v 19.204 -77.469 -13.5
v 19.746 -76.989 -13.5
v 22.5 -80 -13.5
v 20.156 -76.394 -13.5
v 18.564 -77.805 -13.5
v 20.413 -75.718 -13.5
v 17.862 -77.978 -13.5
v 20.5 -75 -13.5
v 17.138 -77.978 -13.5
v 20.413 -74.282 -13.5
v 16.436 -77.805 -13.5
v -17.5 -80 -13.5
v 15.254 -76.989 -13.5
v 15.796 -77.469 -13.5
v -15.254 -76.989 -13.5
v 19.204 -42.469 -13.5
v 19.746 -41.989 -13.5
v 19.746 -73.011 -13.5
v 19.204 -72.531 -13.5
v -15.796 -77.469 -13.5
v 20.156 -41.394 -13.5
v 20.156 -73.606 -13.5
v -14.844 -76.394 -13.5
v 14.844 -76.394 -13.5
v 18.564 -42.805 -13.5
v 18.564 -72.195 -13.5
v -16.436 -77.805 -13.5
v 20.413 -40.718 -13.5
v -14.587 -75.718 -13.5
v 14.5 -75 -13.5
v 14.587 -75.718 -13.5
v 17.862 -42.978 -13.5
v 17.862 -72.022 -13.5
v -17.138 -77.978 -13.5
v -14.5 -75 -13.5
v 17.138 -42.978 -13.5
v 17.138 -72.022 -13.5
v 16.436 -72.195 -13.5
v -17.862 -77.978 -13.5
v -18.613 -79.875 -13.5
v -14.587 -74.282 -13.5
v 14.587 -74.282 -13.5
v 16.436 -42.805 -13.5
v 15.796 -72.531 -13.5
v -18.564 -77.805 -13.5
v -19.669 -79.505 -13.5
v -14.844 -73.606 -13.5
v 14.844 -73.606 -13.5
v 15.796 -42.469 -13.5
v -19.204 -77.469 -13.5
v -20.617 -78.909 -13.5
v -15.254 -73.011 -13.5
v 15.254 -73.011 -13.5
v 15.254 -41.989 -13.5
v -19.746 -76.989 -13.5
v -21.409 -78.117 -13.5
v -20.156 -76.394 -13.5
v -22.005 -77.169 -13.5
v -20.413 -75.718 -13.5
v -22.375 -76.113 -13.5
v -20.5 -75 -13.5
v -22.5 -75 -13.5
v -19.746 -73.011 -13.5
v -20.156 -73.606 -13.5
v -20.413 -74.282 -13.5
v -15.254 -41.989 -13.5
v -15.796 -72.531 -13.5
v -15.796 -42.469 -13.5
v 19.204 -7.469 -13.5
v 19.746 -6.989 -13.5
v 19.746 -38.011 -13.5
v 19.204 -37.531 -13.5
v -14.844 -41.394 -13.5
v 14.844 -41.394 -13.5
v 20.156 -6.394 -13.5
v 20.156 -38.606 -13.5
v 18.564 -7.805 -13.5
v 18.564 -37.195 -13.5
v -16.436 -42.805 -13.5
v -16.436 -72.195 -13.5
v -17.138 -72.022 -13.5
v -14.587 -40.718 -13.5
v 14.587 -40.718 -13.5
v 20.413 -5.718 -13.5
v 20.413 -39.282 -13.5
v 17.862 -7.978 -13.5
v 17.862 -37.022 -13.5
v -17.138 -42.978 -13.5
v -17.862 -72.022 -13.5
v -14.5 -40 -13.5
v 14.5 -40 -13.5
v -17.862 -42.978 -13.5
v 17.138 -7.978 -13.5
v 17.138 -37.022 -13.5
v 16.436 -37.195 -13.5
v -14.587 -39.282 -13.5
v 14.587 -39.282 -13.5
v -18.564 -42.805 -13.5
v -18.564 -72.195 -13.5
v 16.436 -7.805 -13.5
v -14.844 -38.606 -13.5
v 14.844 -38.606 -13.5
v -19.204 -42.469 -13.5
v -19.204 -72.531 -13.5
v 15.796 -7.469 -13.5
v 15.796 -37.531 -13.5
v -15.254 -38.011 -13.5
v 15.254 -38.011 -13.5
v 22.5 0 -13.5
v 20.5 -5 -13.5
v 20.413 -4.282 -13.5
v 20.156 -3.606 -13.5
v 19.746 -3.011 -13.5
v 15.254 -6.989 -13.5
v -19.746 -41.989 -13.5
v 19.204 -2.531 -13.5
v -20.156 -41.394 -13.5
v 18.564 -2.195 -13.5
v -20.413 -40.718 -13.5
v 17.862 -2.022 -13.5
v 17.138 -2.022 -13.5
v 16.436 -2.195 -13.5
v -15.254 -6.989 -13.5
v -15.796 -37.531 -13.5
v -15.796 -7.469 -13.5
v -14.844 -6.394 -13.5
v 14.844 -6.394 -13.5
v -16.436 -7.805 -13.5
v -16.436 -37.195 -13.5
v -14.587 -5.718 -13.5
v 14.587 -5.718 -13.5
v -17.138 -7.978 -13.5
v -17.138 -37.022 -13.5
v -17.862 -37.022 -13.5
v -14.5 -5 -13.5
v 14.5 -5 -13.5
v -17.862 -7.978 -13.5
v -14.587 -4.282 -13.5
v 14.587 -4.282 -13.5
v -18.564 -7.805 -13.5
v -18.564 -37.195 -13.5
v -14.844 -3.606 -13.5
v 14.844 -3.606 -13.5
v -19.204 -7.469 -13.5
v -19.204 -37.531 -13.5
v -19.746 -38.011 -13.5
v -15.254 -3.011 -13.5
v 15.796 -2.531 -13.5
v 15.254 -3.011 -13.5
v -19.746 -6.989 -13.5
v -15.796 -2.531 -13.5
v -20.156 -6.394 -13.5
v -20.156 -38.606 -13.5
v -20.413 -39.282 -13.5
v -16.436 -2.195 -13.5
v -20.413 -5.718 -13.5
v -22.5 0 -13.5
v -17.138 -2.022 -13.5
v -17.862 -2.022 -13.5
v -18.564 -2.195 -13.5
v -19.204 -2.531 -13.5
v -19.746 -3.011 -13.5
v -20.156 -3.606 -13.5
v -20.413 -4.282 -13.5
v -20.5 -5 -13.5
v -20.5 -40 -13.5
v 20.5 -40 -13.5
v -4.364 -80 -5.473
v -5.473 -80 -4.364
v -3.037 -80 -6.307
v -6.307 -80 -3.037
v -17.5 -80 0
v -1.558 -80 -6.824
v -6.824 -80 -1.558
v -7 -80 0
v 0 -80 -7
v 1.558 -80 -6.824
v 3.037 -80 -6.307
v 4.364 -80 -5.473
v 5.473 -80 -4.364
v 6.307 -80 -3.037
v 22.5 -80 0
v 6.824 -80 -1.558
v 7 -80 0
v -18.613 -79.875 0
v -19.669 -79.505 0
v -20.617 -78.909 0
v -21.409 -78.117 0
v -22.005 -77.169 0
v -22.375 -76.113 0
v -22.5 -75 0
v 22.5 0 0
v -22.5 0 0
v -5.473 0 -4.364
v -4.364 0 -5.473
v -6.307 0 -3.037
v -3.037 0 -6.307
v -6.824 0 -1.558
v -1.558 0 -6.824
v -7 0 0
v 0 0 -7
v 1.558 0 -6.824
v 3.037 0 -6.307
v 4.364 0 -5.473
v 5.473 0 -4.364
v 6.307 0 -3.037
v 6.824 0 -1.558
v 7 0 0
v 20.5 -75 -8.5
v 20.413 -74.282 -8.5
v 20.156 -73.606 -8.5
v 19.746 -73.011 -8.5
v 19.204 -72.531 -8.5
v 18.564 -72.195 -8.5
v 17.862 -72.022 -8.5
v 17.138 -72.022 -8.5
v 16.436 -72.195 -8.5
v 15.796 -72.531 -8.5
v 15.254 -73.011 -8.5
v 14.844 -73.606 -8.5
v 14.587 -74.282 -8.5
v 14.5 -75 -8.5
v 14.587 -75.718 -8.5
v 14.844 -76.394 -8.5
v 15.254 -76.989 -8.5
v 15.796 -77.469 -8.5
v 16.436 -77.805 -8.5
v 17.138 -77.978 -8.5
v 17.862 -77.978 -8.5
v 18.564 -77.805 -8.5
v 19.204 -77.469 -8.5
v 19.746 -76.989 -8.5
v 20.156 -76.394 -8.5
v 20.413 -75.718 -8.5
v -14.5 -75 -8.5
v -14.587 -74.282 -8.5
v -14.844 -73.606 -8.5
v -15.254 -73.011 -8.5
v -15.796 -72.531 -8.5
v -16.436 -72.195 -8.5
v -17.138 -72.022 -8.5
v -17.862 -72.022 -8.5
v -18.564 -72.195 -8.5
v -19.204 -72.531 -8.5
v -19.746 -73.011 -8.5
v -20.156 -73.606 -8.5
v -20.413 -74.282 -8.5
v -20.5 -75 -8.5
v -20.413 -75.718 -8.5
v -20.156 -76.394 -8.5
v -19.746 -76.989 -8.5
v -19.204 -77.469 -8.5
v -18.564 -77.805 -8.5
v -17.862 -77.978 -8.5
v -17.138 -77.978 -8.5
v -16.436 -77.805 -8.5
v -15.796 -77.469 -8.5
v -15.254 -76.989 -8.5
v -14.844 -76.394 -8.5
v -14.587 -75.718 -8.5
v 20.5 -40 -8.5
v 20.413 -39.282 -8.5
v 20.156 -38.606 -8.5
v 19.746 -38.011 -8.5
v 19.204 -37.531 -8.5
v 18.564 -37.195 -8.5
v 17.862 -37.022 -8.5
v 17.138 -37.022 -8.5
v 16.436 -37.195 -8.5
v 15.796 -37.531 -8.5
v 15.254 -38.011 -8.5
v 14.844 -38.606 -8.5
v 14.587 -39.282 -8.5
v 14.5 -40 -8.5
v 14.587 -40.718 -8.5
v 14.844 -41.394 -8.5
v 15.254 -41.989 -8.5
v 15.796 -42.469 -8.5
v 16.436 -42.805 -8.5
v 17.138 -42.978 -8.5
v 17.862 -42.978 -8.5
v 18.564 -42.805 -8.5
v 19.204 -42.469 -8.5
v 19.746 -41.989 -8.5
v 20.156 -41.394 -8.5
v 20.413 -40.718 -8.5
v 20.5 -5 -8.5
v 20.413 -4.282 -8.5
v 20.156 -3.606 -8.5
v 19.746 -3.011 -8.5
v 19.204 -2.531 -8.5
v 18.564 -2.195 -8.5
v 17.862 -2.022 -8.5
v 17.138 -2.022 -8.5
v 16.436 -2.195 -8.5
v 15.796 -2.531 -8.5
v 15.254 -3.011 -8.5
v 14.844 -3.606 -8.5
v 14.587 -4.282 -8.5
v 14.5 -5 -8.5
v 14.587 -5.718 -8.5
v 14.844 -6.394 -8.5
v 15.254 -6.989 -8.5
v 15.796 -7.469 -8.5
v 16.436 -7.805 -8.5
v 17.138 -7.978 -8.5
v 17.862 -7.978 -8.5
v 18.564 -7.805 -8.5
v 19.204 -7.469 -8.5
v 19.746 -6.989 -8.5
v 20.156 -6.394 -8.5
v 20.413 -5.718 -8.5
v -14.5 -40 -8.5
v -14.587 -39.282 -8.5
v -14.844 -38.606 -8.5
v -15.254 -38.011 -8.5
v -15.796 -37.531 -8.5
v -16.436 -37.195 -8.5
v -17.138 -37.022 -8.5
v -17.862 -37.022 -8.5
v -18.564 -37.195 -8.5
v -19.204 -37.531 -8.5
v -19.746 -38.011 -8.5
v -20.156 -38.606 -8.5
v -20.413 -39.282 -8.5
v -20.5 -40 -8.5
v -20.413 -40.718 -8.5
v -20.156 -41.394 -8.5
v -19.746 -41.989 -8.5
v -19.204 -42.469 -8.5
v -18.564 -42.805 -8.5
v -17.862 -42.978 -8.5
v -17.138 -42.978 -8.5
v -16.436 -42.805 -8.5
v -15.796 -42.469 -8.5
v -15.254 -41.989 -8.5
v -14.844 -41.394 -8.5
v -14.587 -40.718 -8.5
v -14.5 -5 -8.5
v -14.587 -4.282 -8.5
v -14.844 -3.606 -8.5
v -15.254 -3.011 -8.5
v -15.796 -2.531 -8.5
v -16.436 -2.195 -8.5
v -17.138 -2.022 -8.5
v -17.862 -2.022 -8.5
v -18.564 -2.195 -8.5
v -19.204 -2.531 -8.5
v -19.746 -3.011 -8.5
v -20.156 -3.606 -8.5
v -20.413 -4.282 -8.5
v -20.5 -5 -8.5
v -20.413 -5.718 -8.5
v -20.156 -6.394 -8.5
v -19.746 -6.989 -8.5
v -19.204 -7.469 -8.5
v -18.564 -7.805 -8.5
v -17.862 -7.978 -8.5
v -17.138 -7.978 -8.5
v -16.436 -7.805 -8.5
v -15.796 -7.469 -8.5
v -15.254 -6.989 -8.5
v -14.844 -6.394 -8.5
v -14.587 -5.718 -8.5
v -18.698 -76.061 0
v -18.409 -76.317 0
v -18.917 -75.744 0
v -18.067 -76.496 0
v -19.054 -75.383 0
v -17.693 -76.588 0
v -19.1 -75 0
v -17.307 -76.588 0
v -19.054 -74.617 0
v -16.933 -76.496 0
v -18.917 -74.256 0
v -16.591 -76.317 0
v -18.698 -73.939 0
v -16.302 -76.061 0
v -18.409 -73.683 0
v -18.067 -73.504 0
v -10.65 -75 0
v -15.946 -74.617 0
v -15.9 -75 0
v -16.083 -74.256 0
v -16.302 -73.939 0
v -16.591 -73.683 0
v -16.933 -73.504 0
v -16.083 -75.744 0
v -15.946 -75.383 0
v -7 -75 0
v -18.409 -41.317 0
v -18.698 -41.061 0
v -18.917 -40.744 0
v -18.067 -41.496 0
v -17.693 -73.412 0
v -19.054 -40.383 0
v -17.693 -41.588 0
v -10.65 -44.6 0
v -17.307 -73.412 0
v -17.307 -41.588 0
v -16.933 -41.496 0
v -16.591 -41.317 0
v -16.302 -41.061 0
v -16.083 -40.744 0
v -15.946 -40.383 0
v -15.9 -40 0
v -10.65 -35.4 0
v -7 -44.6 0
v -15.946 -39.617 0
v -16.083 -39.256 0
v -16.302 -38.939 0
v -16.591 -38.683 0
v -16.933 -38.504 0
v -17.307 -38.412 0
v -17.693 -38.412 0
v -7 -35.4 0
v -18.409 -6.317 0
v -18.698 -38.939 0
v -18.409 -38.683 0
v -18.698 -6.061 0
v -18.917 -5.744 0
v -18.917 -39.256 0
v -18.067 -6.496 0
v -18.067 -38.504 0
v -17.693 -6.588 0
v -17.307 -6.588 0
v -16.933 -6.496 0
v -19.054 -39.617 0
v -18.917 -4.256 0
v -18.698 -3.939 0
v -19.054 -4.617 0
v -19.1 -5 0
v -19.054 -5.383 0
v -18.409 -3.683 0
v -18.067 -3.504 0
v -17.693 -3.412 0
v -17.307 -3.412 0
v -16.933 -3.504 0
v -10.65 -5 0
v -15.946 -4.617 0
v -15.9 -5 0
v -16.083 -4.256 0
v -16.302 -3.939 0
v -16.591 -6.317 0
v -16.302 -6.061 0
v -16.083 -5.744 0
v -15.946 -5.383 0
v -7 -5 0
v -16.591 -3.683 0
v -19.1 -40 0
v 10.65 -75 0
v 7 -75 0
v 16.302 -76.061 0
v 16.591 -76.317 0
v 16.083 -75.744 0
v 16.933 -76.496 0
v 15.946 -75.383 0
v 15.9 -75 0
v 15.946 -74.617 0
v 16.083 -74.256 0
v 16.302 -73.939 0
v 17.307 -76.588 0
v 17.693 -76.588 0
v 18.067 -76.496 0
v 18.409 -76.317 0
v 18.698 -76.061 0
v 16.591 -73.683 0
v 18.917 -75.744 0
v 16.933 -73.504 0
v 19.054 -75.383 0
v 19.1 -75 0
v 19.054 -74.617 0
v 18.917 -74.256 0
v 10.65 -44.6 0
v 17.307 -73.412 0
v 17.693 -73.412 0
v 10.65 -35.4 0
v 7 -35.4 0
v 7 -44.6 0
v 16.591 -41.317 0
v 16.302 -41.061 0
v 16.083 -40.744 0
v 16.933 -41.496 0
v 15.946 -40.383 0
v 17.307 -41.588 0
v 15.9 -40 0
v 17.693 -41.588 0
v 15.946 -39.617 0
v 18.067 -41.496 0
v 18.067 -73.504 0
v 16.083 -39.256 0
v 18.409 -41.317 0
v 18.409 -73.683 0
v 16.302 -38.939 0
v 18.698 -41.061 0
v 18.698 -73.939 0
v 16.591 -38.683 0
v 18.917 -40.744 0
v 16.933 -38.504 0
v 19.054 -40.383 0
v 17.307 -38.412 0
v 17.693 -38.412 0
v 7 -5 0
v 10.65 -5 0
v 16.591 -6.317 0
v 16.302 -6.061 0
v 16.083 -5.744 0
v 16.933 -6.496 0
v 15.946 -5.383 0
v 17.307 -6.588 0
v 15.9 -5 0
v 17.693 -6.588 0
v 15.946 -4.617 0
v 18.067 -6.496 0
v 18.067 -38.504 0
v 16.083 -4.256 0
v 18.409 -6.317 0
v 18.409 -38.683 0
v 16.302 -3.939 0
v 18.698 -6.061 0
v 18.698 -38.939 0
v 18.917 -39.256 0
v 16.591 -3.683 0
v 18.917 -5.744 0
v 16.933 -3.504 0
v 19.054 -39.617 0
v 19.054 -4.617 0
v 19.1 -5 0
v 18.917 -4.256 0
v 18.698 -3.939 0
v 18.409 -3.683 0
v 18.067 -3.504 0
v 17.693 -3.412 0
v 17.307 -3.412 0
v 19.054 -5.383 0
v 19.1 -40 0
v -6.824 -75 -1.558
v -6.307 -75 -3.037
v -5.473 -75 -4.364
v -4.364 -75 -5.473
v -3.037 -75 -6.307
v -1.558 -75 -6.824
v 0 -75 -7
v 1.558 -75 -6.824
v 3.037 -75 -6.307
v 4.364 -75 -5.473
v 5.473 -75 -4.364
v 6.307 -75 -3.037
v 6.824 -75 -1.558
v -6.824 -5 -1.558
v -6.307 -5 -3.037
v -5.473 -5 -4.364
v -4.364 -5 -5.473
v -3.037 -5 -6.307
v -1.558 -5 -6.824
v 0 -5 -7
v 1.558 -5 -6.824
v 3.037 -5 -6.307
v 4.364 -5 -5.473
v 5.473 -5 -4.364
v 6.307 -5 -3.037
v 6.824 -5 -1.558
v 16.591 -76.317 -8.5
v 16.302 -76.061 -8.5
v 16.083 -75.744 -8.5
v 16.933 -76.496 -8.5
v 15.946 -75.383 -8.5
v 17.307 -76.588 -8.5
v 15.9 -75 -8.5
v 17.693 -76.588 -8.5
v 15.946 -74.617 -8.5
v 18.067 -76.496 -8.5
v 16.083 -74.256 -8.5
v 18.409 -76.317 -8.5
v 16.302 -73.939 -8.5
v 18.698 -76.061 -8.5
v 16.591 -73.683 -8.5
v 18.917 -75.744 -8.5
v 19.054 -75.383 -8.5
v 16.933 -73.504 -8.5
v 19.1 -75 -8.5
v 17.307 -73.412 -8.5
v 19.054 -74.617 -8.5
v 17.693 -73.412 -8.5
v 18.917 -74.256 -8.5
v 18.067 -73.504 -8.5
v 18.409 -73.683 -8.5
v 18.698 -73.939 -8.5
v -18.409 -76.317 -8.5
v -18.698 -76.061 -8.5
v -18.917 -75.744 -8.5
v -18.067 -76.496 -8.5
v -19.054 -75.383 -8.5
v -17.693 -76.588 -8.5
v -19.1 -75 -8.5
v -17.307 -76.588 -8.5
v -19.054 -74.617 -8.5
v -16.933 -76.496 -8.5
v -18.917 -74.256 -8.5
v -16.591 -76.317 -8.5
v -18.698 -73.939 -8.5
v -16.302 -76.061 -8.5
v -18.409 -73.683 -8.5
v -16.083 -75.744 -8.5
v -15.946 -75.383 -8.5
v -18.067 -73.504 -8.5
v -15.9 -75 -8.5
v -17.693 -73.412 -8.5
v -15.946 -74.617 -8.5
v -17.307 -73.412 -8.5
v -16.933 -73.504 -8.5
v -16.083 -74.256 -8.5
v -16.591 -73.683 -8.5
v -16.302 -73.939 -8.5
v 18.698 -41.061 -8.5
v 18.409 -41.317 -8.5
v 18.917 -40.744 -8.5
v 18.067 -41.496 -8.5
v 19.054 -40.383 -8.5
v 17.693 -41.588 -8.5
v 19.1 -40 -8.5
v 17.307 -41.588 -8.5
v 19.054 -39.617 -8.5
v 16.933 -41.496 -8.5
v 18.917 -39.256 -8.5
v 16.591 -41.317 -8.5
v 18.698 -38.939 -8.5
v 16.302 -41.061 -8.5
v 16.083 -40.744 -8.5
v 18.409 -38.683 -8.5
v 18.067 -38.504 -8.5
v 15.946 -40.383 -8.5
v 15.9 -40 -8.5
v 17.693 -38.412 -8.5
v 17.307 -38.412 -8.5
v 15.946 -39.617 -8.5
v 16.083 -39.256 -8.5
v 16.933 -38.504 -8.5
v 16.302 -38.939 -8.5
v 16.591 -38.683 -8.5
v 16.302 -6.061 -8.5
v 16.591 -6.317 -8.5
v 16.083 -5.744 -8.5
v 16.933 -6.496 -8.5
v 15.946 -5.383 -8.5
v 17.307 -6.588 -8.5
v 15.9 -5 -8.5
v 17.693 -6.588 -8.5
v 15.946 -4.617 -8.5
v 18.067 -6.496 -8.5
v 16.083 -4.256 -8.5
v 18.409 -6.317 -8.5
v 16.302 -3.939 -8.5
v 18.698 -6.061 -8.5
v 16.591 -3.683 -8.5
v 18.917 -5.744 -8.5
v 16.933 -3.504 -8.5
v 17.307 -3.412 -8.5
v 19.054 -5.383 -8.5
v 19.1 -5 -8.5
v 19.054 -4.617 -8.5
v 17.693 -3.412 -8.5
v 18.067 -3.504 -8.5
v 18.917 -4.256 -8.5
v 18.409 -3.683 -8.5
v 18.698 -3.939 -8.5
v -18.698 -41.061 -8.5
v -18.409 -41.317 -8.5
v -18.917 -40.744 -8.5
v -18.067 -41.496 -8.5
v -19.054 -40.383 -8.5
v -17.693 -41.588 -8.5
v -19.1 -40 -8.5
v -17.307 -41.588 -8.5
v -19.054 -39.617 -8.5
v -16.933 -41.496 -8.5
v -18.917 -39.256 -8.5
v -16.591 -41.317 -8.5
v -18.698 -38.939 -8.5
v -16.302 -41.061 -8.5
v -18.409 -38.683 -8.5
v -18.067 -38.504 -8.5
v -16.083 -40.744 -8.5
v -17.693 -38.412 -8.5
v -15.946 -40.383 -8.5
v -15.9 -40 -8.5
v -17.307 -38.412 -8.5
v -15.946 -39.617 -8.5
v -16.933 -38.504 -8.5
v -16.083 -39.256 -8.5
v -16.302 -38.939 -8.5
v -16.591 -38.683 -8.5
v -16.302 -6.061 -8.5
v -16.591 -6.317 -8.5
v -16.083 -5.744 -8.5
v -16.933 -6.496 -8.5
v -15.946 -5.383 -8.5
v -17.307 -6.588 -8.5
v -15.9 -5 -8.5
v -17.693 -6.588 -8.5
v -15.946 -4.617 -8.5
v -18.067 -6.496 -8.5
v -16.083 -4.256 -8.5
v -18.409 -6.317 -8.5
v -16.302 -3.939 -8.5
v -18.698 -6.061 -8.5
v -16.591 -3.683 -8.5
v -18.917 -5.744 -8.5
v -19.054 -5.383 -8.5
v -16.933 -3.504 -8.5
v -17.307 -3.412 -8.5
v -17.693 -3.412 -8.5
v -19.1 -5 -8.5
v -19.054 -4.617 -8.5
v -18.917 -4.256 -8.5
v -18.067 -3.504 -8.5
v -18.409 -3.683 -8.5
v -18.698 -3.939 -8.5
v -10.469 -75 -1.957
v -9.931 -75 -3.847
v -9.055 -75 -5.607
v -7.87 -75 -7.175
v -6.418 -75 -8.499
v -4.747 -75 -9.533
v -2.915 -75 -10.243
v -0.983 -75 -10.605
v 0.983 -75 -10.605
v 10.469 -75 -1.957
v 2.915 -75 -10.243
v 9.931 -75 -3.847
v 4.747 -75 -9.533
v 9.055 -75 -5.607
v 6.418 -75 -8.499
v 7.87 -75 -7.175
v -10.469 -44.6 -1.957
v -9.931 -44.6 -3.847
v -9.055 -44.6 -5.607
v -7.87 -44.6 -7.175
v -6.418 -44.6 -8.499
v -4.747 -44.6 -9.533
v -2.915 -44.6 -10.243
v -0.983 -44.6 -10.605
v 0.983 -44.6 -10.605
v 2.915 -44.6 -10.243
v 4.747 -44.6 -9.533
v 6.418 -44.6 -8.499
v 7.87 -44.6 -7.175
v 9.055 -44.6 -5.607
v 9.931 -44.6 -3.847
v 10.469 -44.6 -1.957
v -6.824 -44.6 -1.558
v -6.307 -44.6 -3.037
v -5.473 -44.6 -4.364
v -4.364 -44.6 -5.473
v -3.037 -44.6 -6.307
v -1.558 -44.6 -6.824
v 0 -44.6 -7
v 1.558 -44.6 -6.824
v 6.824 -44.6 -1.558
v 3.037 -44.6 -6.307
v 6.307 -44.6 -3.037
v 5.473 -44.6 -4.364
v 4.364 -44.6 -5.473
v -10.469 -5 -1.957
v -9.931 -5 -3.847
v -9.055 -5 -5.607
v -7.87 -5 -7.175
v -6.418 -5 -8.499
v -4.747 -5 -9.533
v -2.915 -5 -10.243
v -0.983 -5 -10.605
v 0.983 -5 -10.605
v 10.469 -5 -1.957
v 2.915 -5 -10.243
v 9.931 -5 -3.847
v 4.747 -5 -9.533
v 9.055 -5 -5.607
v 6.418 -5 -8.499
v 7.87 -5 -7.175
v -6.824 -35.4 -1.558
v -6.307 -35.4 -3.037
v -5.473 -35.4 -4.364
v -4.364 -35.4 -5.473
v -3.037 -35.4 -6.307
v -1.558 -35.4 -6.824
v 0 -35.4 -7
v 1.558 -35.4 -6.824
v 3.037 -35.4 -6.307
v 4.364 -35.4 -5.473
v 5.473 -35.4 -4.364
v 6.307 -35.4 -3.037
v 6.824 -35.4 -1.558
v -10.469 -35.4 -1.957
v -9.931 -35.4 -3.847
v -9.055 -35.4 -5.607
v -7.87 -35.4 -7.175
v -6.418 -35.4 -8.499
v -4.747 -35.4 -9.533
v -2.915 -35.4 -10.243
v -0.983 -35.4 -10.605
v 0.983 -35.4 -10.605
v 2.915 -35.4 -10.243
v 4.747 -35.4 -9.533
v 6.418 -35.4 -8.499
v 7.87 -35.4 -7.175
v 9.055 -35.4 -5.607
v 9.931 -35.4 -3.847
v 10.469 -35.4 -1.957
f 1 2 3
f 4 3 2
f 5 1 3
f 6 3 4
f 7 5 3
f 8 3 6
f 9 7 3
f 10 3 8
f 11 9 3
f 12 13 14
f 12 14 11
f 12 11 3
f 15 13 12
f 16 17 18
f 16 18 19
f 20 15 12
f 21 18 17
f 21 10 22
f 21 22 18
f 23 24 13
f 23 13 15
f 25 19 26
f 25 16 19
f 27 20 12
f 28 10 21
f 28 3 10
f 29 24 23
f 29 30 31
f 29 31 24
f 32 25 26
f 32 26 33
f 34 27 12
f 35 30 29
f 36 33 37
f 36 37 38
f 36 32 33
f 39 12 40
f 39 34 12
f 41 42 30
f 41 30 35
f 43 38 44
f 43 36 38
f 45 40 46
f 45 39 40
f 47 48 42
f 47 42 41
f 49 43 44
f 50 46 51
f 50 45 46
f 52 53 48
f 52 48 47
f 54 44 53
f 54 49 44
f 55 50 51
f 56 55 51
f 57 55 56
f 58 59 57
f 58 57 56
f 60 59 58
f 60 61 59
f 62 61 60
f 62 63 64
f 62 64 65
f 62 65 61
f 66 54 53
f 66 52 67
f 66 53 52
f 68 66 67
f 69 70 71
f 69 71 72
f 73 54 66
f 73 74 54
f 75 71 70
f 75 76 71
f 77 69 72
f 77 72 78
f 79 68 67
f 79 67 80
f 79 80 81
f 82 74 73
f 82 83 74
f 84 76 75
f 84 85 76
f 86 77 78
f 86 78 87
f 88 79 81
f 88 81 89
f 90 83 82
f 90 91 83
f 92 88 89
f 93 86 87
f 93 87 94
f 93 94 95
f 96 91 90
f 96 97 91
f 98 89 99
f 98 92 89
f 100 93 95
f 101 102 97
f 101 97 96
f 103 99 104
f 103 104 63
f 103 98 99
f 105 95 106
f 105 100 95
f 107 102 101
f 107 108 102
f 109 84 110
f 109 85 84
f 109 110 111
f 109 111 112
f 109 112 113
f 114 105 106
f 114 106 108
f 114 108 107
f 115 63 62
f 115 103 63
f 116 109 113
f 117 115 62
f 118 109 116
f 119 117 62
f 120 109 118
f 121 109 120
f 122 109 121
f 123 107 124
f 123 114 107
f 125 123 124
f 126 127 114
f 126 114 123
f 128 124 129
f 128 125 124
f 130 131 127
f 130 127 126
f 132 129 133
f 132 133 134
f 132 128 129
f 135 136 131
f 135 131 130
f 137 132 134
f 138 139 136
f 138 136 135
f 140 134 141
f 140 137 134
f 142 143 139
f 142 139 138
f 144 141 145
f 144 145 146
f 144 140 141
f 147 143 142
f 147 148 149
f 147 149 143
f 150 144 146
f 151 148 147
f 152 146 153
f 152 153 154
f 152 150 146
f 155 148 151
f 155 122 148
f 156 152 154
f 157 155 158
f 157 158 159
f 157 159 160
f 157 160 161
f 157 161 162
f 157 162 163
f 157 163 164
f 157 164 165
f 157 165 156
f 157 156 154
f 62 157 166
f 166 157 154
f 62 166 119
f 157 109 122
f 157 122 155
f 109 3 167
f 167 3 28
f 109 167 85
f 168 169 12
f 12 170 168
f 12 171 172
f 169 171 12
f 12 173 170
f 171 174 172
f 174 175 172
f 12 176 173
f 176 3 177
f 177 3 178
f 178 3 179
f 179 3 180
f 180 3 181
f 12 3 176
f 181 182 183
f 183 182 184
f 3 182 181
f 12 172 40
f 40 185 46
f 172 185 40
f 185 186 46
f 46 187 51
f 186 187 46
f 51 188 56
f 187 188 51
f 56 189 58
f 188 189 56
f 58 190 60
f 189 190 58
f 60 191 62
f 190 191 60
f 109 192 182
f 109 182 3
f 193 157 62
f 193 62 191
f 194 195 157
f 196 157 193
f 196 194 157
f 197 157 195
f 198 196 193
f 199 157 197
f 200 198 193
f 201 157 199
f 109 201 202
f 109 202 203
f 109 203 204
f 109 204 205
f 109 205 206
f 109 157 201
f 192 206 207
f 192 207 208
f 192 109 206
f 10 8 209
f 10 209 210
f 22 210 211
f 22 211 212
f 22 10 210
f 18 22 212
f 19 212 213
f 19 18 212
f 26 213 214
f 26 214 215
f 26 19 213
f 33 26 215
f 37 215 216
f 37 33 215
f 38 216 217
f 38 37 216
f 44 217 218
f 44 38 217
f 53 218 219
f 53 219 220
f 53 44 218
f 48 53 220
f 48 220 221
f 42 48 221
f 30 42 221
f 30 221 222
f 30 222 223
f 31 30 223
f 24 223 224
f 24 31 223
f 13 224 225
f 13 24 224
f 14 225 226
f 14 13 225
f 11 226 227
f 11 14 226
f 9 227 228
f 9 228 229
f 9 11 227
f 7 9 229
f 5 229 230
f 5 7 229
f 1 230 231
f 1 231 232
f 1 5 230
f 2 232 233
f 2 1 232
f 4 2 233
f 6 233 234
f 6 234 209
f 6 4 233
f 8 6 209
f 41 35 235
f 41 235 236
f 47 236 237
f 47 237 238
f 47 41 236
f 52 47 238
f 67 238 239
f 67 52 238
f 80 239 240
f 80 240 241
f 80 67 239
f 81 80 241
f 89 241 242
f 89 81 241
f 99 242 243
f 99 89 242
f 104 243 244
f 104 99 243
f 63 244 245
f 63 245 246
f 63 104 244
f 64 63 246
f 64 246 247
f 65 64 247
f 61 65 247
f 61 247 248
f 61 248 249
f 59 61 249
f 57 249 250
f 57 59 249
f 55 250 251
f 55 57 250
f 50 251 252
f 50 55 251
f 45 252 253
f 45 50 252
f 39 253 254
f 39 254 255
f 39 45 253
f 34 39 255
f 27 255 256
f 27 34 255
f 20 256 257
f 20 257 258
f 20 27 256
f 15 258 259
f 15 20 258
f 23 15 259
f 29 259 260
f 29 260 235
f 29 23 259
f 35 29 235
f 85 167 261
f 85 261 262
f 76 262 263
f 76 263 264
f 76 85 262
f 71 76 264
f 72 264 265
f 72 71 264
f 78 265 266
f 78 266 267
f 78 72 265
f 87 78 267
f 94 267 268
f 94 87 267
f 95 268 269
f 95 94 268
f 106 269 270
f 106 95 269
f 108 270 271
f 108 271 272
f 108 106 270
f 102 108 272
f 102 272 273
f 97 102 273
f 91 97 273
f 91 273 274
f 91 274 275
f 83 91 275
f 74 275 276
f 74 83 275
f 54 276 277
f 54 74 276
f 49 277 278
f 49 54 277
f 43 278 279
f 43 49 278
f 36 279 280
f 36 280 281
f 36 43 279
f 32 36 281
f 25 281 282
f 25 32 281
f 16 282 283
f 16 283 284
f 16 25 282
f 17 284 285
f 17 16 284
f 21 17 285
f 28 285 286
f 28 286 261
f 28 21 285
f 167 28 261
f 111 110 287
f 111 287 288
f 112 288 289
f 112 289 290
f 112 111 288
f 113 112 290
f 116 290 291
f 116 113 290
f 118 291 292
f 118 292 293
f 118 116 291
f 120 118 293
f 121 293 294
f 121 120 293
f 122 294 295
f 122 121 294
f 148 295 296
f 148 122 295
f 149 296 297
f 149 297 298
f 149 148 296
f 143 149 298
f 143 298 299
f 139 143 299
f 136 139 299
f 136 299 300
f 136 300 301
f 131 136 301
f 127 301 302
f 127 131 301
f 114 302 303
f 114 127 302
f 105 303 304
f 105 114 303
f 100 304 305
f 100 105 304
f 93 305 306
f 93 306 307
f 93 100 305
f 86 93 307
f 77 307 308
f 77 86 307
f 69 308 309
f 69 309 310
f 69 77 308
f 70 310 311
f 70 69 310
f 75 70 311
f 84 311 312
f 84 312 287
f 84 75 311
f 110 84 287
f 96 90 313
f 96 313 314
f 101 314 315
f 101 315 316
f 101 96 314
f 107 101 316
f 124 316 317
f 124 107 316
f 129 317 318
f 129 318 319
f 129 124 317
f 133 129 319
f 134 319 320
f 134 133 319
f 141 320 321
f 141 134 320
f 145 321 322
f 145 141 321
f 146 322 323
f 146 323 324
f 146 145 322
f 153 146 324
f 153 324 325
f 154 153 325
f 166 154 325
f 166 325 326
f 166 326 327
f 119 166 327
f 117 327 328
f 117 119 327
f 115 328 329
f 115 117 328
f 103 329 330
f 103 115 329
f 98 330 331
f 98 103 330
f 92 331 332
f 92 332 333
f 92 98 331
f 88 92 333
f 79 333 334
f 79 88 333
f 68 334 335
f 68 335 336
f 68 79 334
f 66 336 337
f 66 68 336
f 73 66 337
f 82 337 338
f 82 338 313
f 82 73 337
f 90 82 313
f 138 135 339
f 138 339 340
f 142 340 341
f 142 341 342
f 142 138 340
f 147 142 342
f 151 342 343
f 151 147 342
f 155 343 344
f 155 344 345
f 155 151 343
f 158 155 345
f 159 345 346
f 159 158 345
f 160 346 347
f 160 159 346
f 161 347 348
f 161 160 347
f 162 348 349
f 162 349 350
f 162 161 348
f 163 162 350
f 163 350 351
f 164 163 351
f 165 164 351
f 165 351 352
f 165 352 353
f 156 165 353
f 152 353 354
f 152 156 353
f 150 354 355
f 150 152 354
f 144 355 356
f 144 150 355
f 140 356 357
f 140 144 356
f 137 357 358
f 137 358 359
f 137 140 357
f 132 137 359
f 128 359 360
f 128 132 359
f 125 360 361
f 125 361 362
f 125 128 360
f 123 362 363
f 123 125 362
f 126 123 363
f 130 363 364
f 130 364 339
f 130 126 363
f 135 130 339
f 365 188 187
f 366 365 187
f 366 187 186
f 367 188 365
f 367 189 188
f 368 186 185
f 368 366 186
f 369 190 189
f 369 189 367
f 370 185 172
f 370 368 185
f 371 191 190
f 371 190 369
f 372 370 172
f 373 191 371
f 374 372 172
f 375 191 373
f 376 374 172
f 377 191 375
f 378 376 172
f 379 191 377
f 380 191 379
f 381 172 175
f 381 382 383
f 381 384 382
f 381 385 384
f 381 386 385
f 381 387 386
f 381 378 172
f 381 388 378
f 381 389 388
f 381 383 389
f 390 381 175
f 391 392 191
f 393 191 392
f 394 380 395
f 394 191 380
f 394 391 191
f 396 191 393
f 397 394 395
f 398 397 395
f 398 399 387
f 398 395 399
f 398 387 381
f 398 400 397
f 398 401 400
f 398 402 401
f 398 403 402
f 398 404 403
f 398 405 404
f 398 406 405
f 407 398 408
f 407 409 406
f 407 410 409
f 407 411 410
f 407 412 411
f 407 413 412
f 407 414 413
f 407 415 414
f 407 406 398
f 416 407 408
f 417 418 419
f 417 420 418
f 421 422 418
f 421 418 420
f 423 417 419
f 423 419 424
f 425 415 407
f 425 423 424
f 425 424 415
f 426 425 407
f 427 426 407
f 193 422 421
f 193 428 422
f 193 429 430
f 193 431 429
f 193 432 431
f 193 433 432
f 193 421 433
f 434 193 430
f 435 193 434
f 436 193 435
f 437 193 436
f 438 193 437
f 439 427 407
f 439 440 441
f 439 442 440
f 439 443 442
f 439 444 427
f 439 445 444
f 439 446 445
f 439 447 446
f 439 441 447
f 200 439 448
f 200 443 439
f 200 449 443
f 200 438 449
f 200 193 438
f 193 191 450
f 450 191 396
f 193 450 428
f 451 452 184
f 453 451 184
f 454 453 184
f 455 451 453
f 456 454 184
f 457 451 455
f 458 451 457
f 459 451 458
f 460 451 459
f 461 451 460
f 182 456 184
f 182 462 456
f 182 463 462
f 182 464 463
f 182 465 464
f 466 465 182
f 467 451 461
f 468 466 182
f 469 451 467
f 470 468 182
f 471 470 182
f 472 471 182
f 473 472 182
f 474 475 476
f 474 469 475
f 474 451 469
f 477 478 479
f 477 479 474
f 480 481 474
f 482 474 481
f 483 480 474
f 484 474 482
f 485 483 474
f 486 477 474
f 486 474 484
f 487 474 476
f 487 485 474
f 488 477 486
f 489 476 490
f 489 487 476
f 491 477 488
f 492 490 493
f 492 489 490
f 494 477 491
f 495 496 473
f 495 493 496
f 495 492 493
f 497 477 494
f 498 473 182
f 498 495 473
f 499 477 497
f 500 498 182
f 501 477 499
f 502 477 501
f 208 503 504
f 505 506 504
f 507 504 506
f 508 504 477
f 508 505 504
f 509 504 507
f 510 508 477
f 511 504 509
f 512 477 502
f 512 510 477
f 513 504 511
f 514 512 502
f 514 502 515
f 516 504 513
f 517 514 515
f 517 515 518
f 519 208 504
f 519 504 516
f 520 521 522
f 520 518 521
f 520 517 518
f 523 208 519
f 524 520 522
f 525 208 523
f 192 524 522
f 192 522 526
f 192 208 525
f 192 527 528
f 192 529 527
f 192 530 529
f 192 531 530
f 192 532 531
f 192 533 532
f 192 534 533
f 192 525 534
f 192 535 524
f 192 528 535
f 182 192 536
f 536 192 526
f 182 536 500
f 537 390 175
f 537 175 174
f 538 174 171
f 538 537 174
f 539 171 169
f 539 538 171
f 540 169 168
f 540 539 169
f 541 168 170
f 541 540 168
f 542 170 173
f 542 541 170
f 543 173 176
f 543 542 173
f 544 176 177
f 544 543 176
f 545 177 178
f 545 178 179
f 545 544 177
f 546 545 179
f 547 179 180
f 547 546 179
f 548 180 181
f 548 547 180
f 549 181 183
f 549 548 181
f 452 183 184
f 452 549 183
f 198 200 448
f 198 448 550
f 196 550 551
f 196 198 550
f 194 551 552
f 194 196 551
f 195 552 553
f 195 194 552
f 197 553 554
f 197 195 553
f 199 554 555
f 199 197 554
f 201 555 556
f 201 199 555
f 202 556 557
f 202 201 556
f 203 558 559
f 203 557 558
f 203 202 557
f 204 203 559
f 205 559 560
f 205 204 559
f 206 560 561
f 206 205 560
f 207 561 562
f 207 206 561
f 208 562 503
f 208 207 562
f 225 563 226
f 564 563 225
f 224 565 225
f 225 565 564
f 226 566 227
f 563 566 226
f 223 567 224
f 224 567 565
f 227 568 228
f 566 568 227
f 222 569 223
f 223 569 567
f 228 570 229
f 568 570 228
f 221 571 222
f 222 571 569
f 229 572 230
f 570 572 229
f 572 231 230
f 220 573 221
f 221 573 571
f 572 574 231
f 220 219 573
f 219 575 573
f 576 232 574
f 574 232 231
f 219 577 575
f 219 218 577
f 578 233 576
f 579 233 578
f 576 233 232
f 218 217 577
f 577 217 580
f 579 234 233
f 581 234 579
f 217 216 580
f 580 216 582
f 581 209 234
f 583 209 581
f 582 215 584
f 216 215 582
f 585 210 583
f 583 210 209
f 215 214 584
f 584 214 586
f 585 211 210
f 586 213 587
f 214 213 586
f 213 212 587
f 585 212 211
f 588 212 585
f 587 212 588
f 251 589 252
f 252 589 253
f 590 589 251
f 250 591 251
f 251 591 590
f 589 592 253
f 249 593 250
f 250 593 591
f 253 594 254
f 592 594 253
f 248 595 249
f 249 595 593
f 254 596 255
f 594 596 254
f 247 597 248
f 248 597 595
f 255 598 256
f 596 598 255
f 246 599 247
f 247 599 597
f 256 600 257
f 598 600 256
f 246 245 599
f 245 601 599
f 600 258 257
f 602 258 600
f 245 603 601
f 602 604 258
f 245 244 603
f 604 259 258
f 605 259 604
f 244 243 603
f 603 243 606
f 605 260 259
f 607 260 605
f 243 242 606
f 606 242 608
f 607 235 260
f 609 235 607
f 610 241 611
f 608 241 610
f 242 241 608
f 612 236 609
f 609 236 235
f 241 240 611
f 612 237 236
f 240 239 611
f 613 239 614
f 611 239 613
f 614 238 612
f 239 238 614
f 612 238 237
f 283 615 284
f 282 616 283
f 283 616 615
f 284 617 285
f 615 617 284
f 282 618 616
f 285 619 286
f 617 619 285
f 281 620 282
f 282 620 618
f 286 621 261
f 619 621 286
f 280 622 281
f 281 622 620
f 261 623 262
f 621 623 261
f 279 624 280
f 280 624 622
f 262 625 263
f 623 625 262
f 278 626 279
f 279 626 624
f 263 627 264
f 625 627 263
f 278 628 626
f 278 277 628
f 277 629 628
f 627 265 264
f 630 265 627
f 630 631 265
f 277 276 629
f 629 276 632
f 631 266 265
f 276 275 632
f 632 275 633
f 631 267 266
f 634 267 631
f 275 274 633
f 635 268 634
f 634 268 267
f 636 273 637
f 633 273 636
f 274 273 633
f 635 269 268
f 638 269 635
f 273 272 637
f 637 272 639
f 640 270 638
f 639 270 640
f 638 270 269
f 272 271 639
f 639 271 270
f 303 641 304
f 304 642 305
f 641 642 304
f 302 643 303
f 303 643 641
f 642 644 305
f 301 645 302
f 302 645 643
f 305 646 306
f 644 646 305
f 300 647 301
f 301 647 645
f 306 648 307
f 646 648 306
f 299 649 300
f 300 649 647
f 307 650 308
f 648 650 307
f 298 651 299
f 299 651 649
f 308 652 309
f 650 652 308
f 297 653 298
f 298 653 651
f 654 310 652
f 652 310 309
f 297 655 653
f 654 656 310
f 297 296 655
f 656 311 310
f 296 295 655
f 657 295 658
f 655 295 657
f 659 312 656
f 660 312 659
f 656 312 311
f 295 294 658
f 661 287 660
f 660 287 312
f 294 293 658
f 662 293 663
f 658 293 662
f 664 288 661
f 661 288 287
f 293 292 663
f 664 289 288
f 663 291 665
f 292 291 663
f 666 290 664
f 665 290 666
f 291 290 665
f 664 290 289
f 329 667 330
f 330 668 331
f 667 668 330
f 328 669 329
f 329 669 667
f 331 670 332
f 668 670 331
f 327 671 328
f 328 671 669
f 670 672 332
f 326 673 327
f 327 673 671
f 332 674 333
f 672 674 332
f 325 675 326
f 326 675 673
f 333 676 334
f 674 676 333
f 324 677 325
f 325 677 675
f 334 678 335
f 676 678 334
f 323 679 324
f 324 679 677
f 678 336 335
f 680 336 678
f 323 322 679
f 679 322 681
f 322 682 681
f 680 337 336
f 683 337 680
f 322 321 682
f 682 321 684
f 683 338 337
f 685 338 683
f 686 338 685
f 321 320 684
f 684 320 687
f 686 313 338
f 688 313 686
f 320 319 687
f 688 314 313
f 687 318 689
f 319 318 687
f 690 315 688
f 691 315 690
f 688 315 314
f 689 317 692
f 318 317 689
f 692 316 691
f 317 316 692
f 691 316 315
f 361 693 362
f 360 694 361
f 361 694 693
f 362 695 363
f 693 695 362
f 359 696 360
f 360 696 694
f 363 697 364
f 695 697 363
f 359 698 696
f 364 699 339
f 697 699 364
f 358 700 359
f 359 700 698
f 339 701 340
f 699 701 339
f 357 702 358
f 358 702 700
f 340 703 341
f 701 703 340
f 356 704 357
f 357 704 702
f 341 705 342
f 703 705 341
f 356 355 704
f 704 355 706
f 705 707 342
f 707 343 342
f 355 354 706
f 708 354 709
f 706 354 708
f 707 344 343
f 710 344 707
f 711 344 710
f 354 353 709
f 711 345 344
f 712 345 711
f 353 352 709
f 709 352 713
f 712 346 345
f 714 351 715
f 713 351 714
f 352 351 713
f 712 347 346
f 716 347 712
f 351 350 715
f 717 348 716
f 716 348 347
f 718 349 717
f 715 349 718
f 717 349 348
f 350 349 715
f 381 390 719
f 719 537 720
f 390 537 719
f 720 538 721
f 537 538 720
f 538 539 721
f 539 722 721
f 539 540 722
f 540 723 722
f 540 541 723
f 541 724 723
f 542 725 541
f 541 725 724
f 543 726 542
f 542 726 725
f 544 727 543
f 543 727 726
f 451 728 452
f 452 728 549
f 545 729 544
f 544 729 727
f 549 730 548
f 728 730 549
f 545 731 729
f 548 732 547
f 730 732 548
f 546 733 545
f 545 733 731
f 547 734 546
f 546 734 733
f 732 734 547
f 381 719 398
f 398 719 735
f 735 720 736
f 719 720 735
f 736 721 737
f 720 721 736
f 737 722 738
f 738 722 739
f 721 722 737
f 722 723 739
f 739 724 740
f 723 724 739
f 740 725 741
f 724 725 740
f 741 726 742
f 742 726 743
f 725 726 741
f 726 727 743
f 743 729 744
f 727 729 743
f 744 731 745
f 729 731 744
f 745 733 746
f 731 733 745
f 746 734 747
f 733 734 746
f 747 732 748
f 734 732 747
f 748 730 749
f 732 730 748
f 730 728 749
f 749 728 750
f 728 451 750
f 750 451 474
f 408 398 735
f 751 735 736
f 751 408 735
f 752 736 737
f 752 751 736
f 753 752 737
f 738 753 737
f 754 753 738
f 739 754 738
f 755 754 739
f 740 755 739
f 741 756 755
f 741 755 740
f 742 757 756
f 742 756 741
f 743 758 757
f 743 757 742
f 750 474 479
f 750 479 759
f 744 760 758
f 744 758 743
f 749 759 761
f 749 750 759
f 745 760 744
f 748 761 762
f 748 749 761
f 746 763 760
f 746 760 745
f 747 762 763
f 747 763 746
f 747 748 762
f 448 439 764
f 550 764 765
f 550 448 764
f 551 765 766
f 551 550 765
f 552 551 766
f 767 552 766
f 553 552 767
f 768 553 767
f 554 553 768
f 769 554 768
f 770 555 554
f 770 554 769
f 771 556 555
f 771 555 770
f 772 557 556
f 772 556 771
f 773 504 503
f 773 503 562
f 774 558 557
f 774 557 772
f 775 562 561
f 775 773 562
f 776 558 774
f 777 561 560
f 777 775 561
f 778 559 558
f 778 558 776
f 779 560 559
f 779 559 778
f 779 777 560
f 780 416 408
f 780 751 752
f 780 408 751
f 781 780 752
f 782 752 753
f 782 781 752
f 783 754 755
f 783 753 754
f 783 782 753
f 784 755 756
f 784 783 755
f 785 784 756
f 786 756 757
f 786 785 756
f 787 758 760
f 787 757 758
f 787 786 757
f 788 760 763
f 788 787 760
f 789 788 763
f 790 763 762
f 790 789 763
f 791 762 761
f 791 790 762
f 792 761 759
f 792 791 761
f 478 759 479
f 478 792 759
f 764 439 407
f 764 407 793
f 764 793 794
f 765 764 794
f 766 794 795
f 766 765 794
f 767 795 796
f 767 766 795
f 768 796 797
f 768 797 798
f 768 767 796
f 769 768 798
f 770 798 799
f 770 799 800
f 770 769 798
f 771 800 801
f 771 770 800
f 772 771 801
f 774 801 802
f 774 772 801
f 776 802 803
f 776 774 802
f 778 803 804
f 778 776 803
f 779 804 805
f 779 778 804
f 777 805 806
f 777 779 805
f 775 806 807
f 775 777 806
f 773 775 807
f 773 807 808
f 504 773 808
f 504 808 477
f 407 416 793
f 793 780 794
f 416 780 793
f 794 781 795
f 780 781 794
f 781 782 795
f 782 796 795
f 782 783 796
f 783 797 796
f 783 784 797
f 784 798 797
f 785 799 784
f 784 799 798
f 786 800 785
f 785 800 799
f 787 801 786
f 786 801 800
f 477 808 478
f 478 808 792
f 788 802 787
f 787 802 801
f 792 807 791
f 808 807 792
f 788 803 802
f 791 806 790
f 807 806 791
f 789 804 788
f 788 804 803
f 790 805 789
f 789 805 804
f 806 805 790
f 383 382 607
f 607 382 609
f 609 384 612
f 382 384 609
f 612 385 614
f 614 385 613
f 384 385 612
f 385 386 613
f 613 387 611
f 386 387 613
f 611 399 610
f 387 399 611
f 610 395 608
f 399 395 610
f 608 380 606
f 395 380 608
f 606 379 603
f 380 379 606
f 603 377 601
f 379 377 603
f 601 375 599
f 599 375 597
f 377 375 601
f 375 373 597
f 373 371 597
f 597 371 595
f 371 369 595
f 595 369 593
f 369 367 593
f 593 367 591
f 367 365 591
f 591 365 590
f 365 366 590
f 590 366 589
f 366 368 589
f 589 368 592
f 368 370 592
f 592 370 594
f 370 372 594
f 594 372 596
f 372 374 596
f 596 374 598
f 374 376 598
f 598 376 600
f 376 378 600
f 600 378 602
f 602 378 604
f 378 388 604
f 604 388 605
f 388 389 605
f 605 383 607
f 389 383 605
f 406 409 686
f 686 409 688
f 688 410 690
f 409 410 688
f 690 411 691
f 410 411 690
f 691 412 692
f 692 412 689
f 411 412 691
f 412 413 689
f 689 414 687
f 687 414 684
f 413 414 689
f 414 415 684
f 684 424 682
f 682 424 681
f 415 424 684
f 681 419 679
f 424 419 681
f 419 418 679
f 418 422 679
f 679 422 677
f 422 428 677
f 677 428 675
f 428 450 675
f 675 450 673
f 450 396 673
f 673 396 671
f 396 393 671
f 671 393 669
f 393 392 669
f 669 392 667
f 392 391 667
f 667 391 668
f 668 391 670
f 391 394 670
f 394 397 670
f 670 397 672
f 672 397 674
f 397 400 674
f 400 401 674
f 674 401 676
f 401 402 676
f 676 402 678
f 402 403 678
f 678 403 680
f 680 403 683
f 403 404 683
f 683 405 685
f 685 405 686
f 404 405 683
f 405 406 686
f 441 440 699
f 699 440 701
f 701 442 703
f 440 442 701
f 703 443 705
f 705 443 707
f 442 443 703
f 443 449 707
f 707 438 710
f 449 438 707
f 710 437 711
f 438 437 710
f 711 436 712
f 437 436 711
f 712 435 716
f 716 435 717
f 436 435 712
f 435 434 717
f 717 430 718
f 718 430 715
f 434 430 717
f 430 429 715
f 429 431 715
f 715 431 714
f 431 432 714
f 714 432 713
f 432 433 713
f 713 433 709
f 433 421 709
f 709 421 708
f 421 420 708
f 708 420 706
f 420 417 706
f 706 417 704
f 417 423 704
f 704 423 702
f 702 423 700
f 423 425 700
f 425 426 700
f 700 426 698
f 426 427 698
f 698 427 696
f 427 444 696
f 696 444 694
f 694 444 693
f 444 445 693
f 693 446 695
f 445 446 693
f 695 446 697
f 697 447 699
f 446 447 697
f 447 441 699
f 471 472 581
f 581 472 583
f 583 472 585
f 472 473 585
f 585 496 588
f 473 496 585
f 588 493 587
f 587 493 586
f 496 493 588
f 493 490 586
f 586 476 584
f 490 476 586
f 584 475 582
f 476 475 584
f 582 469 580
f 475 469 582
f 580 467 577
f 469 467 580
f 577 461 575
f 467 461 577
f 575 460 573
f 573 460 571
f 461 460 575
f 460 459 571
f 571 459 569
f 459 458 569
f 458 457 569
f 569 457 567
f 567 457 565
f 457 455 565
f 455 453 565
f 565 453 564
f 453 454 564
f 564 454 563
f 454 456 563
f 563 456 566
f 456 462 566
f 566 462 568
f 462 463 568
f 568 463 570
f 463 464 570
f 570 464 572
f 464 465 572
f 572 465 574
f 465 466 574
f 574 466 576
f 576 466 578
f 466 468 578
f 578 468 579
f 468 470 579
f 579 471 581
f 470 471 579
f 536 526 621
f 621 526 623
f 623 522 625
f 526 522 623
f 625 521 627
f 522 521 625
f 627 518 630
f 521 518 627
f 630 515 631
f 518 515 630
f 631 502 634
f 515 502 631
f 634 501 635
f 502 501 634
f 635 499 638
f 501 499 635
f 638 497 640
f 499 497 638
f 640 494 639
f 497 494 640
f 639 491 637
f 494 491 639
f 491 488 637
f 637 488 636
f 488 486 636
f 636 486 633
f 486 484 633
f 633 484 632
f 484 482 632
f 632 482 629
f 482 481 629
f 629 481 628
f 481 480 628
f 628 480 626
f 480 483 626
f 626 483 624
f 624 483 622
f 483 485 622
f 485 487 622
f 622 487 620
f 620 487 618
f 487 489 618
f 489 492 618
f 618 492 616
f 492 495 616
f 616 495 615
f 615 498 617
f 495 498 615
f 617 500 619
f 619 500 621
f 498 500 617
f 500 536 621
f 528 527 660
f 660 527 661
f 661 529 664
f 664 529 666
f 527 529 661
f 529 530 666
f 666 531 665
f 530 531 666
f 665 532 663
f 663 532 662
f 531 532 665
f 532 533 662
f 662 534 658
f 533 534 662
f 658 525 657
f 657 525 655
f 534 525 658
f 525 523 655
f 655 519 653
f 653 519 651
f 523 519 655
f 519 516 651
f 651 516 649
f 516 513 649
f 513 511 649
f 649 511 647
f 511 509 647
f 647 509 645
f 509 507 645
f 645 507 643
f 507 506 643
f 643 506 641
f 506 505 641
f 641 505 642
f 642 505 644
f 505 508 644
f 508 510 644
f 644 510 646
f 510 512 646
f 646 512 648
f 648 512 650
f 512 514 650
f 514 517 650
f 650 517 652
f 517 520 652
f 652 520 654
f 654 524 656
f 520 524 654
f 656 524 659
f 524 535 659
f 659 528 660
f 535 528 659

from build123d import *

# Parameters (mm, degrees)
PAD_DEPTH       = 80
SKETCH001_R     = 1.6
POCKET_DEPTH    = 13.501
SKETCH002_R     = 3
POCKET001_DEPTH = 5
SKETCH003_R     = 10.65
POCKET002_DEPTH = 30.4
SKETCH004_R     = 10.65
POCKET003_DEPTH = 30.4
FILLET_R        = 5


with BuildPart() as part:
    # Sketch → Pad (new body)
    with BuildSketch(Plane.XZ):
        with BuildLine():
            Line((22.5, 0), (22.5, -13.5))
            Line((22.5, -13.5), (-22.5, -13.5))
            Line((-22.5, -13.5), (-22.5, 0))
            Line((-22.5, 0), (-7, 0))
            ThreePointArc((-7, 0), (0, -7), (7, 0))
            Line((7, 0), (22.5, 0))
        make_face()
    extrude(amount=PAD_DEPTH)

    # Sketch001 → Pocket (cut, through all)
    with BuildSketch(Plane.XY):
        with Locations((-17.5, -5)):
            Circle(SKETCH001_R)
        with Locations((-17.5, -40)):
            Circle(SKETCH001_R)
        with Locations((-17.5, -75)):
            Circle(SKETCH001_R)
        with Locations((17.5, -5)):
            Circle(SKETCH001_R)
        with Locations((17.5, -40)):
            Circle(SKETCH001_R)
        with Locations((17.5, -75)):
            Circle(SKETCH001_R)
    extrude(amount=-POCKET_DEPTH, mode=Mode.SUBTRACT)

    # Sketch002 (on DatumPlane) → Pocket001 (cut)
    with BuildSketch(Plane.XY.offset(-13.5)):
        with Locations((-17.5, -5)):
            Circle(SKETCH002_R)
        with Locations((-17.5, -40)):
            Circle(SKETCH002_R)
        with Locations((-17.5, -75)):
            Circle(SKETCH002_R)
        with Locations((17.5, -5)):
            Circle(SKETCH002_R)
        with Locations((17.5, -40)):
            Circle(SKETCH002_R)
        with Locations((17.5, -75)):
            Circle(SKETCH002_R)
    extrude(amount=POCKET001_DEPTH, mode=Mode.SUBTRACT)

    # Sketch003 (on DatumPlane) → Pocket002 (cut)
    with BuildSketch(Plane.XZ.offset(5)):
        Circle(SKETCH003_R)
    extrude(amount=POCKET002_DEPTH, mode=Mode.SUBTRACT)

    # Sketch004 (on DatumPlane) → Pocket003 (cut)
    with BuildSketch(Plane.XZ.offset(75)):
        Circle(SKETCH004_R)
    extrude(amount=-POCKET003_DEPTH, mode=Mode.SUBTRACT)

    # Fillet
    fillet_edges = [part.edges().sort_by_distance(p)[0] for p in [
        (-22.5, -80, -6.75),
    ]]
    fillet(fillet_edges, radius=FILLET_R)


solid = part.part
